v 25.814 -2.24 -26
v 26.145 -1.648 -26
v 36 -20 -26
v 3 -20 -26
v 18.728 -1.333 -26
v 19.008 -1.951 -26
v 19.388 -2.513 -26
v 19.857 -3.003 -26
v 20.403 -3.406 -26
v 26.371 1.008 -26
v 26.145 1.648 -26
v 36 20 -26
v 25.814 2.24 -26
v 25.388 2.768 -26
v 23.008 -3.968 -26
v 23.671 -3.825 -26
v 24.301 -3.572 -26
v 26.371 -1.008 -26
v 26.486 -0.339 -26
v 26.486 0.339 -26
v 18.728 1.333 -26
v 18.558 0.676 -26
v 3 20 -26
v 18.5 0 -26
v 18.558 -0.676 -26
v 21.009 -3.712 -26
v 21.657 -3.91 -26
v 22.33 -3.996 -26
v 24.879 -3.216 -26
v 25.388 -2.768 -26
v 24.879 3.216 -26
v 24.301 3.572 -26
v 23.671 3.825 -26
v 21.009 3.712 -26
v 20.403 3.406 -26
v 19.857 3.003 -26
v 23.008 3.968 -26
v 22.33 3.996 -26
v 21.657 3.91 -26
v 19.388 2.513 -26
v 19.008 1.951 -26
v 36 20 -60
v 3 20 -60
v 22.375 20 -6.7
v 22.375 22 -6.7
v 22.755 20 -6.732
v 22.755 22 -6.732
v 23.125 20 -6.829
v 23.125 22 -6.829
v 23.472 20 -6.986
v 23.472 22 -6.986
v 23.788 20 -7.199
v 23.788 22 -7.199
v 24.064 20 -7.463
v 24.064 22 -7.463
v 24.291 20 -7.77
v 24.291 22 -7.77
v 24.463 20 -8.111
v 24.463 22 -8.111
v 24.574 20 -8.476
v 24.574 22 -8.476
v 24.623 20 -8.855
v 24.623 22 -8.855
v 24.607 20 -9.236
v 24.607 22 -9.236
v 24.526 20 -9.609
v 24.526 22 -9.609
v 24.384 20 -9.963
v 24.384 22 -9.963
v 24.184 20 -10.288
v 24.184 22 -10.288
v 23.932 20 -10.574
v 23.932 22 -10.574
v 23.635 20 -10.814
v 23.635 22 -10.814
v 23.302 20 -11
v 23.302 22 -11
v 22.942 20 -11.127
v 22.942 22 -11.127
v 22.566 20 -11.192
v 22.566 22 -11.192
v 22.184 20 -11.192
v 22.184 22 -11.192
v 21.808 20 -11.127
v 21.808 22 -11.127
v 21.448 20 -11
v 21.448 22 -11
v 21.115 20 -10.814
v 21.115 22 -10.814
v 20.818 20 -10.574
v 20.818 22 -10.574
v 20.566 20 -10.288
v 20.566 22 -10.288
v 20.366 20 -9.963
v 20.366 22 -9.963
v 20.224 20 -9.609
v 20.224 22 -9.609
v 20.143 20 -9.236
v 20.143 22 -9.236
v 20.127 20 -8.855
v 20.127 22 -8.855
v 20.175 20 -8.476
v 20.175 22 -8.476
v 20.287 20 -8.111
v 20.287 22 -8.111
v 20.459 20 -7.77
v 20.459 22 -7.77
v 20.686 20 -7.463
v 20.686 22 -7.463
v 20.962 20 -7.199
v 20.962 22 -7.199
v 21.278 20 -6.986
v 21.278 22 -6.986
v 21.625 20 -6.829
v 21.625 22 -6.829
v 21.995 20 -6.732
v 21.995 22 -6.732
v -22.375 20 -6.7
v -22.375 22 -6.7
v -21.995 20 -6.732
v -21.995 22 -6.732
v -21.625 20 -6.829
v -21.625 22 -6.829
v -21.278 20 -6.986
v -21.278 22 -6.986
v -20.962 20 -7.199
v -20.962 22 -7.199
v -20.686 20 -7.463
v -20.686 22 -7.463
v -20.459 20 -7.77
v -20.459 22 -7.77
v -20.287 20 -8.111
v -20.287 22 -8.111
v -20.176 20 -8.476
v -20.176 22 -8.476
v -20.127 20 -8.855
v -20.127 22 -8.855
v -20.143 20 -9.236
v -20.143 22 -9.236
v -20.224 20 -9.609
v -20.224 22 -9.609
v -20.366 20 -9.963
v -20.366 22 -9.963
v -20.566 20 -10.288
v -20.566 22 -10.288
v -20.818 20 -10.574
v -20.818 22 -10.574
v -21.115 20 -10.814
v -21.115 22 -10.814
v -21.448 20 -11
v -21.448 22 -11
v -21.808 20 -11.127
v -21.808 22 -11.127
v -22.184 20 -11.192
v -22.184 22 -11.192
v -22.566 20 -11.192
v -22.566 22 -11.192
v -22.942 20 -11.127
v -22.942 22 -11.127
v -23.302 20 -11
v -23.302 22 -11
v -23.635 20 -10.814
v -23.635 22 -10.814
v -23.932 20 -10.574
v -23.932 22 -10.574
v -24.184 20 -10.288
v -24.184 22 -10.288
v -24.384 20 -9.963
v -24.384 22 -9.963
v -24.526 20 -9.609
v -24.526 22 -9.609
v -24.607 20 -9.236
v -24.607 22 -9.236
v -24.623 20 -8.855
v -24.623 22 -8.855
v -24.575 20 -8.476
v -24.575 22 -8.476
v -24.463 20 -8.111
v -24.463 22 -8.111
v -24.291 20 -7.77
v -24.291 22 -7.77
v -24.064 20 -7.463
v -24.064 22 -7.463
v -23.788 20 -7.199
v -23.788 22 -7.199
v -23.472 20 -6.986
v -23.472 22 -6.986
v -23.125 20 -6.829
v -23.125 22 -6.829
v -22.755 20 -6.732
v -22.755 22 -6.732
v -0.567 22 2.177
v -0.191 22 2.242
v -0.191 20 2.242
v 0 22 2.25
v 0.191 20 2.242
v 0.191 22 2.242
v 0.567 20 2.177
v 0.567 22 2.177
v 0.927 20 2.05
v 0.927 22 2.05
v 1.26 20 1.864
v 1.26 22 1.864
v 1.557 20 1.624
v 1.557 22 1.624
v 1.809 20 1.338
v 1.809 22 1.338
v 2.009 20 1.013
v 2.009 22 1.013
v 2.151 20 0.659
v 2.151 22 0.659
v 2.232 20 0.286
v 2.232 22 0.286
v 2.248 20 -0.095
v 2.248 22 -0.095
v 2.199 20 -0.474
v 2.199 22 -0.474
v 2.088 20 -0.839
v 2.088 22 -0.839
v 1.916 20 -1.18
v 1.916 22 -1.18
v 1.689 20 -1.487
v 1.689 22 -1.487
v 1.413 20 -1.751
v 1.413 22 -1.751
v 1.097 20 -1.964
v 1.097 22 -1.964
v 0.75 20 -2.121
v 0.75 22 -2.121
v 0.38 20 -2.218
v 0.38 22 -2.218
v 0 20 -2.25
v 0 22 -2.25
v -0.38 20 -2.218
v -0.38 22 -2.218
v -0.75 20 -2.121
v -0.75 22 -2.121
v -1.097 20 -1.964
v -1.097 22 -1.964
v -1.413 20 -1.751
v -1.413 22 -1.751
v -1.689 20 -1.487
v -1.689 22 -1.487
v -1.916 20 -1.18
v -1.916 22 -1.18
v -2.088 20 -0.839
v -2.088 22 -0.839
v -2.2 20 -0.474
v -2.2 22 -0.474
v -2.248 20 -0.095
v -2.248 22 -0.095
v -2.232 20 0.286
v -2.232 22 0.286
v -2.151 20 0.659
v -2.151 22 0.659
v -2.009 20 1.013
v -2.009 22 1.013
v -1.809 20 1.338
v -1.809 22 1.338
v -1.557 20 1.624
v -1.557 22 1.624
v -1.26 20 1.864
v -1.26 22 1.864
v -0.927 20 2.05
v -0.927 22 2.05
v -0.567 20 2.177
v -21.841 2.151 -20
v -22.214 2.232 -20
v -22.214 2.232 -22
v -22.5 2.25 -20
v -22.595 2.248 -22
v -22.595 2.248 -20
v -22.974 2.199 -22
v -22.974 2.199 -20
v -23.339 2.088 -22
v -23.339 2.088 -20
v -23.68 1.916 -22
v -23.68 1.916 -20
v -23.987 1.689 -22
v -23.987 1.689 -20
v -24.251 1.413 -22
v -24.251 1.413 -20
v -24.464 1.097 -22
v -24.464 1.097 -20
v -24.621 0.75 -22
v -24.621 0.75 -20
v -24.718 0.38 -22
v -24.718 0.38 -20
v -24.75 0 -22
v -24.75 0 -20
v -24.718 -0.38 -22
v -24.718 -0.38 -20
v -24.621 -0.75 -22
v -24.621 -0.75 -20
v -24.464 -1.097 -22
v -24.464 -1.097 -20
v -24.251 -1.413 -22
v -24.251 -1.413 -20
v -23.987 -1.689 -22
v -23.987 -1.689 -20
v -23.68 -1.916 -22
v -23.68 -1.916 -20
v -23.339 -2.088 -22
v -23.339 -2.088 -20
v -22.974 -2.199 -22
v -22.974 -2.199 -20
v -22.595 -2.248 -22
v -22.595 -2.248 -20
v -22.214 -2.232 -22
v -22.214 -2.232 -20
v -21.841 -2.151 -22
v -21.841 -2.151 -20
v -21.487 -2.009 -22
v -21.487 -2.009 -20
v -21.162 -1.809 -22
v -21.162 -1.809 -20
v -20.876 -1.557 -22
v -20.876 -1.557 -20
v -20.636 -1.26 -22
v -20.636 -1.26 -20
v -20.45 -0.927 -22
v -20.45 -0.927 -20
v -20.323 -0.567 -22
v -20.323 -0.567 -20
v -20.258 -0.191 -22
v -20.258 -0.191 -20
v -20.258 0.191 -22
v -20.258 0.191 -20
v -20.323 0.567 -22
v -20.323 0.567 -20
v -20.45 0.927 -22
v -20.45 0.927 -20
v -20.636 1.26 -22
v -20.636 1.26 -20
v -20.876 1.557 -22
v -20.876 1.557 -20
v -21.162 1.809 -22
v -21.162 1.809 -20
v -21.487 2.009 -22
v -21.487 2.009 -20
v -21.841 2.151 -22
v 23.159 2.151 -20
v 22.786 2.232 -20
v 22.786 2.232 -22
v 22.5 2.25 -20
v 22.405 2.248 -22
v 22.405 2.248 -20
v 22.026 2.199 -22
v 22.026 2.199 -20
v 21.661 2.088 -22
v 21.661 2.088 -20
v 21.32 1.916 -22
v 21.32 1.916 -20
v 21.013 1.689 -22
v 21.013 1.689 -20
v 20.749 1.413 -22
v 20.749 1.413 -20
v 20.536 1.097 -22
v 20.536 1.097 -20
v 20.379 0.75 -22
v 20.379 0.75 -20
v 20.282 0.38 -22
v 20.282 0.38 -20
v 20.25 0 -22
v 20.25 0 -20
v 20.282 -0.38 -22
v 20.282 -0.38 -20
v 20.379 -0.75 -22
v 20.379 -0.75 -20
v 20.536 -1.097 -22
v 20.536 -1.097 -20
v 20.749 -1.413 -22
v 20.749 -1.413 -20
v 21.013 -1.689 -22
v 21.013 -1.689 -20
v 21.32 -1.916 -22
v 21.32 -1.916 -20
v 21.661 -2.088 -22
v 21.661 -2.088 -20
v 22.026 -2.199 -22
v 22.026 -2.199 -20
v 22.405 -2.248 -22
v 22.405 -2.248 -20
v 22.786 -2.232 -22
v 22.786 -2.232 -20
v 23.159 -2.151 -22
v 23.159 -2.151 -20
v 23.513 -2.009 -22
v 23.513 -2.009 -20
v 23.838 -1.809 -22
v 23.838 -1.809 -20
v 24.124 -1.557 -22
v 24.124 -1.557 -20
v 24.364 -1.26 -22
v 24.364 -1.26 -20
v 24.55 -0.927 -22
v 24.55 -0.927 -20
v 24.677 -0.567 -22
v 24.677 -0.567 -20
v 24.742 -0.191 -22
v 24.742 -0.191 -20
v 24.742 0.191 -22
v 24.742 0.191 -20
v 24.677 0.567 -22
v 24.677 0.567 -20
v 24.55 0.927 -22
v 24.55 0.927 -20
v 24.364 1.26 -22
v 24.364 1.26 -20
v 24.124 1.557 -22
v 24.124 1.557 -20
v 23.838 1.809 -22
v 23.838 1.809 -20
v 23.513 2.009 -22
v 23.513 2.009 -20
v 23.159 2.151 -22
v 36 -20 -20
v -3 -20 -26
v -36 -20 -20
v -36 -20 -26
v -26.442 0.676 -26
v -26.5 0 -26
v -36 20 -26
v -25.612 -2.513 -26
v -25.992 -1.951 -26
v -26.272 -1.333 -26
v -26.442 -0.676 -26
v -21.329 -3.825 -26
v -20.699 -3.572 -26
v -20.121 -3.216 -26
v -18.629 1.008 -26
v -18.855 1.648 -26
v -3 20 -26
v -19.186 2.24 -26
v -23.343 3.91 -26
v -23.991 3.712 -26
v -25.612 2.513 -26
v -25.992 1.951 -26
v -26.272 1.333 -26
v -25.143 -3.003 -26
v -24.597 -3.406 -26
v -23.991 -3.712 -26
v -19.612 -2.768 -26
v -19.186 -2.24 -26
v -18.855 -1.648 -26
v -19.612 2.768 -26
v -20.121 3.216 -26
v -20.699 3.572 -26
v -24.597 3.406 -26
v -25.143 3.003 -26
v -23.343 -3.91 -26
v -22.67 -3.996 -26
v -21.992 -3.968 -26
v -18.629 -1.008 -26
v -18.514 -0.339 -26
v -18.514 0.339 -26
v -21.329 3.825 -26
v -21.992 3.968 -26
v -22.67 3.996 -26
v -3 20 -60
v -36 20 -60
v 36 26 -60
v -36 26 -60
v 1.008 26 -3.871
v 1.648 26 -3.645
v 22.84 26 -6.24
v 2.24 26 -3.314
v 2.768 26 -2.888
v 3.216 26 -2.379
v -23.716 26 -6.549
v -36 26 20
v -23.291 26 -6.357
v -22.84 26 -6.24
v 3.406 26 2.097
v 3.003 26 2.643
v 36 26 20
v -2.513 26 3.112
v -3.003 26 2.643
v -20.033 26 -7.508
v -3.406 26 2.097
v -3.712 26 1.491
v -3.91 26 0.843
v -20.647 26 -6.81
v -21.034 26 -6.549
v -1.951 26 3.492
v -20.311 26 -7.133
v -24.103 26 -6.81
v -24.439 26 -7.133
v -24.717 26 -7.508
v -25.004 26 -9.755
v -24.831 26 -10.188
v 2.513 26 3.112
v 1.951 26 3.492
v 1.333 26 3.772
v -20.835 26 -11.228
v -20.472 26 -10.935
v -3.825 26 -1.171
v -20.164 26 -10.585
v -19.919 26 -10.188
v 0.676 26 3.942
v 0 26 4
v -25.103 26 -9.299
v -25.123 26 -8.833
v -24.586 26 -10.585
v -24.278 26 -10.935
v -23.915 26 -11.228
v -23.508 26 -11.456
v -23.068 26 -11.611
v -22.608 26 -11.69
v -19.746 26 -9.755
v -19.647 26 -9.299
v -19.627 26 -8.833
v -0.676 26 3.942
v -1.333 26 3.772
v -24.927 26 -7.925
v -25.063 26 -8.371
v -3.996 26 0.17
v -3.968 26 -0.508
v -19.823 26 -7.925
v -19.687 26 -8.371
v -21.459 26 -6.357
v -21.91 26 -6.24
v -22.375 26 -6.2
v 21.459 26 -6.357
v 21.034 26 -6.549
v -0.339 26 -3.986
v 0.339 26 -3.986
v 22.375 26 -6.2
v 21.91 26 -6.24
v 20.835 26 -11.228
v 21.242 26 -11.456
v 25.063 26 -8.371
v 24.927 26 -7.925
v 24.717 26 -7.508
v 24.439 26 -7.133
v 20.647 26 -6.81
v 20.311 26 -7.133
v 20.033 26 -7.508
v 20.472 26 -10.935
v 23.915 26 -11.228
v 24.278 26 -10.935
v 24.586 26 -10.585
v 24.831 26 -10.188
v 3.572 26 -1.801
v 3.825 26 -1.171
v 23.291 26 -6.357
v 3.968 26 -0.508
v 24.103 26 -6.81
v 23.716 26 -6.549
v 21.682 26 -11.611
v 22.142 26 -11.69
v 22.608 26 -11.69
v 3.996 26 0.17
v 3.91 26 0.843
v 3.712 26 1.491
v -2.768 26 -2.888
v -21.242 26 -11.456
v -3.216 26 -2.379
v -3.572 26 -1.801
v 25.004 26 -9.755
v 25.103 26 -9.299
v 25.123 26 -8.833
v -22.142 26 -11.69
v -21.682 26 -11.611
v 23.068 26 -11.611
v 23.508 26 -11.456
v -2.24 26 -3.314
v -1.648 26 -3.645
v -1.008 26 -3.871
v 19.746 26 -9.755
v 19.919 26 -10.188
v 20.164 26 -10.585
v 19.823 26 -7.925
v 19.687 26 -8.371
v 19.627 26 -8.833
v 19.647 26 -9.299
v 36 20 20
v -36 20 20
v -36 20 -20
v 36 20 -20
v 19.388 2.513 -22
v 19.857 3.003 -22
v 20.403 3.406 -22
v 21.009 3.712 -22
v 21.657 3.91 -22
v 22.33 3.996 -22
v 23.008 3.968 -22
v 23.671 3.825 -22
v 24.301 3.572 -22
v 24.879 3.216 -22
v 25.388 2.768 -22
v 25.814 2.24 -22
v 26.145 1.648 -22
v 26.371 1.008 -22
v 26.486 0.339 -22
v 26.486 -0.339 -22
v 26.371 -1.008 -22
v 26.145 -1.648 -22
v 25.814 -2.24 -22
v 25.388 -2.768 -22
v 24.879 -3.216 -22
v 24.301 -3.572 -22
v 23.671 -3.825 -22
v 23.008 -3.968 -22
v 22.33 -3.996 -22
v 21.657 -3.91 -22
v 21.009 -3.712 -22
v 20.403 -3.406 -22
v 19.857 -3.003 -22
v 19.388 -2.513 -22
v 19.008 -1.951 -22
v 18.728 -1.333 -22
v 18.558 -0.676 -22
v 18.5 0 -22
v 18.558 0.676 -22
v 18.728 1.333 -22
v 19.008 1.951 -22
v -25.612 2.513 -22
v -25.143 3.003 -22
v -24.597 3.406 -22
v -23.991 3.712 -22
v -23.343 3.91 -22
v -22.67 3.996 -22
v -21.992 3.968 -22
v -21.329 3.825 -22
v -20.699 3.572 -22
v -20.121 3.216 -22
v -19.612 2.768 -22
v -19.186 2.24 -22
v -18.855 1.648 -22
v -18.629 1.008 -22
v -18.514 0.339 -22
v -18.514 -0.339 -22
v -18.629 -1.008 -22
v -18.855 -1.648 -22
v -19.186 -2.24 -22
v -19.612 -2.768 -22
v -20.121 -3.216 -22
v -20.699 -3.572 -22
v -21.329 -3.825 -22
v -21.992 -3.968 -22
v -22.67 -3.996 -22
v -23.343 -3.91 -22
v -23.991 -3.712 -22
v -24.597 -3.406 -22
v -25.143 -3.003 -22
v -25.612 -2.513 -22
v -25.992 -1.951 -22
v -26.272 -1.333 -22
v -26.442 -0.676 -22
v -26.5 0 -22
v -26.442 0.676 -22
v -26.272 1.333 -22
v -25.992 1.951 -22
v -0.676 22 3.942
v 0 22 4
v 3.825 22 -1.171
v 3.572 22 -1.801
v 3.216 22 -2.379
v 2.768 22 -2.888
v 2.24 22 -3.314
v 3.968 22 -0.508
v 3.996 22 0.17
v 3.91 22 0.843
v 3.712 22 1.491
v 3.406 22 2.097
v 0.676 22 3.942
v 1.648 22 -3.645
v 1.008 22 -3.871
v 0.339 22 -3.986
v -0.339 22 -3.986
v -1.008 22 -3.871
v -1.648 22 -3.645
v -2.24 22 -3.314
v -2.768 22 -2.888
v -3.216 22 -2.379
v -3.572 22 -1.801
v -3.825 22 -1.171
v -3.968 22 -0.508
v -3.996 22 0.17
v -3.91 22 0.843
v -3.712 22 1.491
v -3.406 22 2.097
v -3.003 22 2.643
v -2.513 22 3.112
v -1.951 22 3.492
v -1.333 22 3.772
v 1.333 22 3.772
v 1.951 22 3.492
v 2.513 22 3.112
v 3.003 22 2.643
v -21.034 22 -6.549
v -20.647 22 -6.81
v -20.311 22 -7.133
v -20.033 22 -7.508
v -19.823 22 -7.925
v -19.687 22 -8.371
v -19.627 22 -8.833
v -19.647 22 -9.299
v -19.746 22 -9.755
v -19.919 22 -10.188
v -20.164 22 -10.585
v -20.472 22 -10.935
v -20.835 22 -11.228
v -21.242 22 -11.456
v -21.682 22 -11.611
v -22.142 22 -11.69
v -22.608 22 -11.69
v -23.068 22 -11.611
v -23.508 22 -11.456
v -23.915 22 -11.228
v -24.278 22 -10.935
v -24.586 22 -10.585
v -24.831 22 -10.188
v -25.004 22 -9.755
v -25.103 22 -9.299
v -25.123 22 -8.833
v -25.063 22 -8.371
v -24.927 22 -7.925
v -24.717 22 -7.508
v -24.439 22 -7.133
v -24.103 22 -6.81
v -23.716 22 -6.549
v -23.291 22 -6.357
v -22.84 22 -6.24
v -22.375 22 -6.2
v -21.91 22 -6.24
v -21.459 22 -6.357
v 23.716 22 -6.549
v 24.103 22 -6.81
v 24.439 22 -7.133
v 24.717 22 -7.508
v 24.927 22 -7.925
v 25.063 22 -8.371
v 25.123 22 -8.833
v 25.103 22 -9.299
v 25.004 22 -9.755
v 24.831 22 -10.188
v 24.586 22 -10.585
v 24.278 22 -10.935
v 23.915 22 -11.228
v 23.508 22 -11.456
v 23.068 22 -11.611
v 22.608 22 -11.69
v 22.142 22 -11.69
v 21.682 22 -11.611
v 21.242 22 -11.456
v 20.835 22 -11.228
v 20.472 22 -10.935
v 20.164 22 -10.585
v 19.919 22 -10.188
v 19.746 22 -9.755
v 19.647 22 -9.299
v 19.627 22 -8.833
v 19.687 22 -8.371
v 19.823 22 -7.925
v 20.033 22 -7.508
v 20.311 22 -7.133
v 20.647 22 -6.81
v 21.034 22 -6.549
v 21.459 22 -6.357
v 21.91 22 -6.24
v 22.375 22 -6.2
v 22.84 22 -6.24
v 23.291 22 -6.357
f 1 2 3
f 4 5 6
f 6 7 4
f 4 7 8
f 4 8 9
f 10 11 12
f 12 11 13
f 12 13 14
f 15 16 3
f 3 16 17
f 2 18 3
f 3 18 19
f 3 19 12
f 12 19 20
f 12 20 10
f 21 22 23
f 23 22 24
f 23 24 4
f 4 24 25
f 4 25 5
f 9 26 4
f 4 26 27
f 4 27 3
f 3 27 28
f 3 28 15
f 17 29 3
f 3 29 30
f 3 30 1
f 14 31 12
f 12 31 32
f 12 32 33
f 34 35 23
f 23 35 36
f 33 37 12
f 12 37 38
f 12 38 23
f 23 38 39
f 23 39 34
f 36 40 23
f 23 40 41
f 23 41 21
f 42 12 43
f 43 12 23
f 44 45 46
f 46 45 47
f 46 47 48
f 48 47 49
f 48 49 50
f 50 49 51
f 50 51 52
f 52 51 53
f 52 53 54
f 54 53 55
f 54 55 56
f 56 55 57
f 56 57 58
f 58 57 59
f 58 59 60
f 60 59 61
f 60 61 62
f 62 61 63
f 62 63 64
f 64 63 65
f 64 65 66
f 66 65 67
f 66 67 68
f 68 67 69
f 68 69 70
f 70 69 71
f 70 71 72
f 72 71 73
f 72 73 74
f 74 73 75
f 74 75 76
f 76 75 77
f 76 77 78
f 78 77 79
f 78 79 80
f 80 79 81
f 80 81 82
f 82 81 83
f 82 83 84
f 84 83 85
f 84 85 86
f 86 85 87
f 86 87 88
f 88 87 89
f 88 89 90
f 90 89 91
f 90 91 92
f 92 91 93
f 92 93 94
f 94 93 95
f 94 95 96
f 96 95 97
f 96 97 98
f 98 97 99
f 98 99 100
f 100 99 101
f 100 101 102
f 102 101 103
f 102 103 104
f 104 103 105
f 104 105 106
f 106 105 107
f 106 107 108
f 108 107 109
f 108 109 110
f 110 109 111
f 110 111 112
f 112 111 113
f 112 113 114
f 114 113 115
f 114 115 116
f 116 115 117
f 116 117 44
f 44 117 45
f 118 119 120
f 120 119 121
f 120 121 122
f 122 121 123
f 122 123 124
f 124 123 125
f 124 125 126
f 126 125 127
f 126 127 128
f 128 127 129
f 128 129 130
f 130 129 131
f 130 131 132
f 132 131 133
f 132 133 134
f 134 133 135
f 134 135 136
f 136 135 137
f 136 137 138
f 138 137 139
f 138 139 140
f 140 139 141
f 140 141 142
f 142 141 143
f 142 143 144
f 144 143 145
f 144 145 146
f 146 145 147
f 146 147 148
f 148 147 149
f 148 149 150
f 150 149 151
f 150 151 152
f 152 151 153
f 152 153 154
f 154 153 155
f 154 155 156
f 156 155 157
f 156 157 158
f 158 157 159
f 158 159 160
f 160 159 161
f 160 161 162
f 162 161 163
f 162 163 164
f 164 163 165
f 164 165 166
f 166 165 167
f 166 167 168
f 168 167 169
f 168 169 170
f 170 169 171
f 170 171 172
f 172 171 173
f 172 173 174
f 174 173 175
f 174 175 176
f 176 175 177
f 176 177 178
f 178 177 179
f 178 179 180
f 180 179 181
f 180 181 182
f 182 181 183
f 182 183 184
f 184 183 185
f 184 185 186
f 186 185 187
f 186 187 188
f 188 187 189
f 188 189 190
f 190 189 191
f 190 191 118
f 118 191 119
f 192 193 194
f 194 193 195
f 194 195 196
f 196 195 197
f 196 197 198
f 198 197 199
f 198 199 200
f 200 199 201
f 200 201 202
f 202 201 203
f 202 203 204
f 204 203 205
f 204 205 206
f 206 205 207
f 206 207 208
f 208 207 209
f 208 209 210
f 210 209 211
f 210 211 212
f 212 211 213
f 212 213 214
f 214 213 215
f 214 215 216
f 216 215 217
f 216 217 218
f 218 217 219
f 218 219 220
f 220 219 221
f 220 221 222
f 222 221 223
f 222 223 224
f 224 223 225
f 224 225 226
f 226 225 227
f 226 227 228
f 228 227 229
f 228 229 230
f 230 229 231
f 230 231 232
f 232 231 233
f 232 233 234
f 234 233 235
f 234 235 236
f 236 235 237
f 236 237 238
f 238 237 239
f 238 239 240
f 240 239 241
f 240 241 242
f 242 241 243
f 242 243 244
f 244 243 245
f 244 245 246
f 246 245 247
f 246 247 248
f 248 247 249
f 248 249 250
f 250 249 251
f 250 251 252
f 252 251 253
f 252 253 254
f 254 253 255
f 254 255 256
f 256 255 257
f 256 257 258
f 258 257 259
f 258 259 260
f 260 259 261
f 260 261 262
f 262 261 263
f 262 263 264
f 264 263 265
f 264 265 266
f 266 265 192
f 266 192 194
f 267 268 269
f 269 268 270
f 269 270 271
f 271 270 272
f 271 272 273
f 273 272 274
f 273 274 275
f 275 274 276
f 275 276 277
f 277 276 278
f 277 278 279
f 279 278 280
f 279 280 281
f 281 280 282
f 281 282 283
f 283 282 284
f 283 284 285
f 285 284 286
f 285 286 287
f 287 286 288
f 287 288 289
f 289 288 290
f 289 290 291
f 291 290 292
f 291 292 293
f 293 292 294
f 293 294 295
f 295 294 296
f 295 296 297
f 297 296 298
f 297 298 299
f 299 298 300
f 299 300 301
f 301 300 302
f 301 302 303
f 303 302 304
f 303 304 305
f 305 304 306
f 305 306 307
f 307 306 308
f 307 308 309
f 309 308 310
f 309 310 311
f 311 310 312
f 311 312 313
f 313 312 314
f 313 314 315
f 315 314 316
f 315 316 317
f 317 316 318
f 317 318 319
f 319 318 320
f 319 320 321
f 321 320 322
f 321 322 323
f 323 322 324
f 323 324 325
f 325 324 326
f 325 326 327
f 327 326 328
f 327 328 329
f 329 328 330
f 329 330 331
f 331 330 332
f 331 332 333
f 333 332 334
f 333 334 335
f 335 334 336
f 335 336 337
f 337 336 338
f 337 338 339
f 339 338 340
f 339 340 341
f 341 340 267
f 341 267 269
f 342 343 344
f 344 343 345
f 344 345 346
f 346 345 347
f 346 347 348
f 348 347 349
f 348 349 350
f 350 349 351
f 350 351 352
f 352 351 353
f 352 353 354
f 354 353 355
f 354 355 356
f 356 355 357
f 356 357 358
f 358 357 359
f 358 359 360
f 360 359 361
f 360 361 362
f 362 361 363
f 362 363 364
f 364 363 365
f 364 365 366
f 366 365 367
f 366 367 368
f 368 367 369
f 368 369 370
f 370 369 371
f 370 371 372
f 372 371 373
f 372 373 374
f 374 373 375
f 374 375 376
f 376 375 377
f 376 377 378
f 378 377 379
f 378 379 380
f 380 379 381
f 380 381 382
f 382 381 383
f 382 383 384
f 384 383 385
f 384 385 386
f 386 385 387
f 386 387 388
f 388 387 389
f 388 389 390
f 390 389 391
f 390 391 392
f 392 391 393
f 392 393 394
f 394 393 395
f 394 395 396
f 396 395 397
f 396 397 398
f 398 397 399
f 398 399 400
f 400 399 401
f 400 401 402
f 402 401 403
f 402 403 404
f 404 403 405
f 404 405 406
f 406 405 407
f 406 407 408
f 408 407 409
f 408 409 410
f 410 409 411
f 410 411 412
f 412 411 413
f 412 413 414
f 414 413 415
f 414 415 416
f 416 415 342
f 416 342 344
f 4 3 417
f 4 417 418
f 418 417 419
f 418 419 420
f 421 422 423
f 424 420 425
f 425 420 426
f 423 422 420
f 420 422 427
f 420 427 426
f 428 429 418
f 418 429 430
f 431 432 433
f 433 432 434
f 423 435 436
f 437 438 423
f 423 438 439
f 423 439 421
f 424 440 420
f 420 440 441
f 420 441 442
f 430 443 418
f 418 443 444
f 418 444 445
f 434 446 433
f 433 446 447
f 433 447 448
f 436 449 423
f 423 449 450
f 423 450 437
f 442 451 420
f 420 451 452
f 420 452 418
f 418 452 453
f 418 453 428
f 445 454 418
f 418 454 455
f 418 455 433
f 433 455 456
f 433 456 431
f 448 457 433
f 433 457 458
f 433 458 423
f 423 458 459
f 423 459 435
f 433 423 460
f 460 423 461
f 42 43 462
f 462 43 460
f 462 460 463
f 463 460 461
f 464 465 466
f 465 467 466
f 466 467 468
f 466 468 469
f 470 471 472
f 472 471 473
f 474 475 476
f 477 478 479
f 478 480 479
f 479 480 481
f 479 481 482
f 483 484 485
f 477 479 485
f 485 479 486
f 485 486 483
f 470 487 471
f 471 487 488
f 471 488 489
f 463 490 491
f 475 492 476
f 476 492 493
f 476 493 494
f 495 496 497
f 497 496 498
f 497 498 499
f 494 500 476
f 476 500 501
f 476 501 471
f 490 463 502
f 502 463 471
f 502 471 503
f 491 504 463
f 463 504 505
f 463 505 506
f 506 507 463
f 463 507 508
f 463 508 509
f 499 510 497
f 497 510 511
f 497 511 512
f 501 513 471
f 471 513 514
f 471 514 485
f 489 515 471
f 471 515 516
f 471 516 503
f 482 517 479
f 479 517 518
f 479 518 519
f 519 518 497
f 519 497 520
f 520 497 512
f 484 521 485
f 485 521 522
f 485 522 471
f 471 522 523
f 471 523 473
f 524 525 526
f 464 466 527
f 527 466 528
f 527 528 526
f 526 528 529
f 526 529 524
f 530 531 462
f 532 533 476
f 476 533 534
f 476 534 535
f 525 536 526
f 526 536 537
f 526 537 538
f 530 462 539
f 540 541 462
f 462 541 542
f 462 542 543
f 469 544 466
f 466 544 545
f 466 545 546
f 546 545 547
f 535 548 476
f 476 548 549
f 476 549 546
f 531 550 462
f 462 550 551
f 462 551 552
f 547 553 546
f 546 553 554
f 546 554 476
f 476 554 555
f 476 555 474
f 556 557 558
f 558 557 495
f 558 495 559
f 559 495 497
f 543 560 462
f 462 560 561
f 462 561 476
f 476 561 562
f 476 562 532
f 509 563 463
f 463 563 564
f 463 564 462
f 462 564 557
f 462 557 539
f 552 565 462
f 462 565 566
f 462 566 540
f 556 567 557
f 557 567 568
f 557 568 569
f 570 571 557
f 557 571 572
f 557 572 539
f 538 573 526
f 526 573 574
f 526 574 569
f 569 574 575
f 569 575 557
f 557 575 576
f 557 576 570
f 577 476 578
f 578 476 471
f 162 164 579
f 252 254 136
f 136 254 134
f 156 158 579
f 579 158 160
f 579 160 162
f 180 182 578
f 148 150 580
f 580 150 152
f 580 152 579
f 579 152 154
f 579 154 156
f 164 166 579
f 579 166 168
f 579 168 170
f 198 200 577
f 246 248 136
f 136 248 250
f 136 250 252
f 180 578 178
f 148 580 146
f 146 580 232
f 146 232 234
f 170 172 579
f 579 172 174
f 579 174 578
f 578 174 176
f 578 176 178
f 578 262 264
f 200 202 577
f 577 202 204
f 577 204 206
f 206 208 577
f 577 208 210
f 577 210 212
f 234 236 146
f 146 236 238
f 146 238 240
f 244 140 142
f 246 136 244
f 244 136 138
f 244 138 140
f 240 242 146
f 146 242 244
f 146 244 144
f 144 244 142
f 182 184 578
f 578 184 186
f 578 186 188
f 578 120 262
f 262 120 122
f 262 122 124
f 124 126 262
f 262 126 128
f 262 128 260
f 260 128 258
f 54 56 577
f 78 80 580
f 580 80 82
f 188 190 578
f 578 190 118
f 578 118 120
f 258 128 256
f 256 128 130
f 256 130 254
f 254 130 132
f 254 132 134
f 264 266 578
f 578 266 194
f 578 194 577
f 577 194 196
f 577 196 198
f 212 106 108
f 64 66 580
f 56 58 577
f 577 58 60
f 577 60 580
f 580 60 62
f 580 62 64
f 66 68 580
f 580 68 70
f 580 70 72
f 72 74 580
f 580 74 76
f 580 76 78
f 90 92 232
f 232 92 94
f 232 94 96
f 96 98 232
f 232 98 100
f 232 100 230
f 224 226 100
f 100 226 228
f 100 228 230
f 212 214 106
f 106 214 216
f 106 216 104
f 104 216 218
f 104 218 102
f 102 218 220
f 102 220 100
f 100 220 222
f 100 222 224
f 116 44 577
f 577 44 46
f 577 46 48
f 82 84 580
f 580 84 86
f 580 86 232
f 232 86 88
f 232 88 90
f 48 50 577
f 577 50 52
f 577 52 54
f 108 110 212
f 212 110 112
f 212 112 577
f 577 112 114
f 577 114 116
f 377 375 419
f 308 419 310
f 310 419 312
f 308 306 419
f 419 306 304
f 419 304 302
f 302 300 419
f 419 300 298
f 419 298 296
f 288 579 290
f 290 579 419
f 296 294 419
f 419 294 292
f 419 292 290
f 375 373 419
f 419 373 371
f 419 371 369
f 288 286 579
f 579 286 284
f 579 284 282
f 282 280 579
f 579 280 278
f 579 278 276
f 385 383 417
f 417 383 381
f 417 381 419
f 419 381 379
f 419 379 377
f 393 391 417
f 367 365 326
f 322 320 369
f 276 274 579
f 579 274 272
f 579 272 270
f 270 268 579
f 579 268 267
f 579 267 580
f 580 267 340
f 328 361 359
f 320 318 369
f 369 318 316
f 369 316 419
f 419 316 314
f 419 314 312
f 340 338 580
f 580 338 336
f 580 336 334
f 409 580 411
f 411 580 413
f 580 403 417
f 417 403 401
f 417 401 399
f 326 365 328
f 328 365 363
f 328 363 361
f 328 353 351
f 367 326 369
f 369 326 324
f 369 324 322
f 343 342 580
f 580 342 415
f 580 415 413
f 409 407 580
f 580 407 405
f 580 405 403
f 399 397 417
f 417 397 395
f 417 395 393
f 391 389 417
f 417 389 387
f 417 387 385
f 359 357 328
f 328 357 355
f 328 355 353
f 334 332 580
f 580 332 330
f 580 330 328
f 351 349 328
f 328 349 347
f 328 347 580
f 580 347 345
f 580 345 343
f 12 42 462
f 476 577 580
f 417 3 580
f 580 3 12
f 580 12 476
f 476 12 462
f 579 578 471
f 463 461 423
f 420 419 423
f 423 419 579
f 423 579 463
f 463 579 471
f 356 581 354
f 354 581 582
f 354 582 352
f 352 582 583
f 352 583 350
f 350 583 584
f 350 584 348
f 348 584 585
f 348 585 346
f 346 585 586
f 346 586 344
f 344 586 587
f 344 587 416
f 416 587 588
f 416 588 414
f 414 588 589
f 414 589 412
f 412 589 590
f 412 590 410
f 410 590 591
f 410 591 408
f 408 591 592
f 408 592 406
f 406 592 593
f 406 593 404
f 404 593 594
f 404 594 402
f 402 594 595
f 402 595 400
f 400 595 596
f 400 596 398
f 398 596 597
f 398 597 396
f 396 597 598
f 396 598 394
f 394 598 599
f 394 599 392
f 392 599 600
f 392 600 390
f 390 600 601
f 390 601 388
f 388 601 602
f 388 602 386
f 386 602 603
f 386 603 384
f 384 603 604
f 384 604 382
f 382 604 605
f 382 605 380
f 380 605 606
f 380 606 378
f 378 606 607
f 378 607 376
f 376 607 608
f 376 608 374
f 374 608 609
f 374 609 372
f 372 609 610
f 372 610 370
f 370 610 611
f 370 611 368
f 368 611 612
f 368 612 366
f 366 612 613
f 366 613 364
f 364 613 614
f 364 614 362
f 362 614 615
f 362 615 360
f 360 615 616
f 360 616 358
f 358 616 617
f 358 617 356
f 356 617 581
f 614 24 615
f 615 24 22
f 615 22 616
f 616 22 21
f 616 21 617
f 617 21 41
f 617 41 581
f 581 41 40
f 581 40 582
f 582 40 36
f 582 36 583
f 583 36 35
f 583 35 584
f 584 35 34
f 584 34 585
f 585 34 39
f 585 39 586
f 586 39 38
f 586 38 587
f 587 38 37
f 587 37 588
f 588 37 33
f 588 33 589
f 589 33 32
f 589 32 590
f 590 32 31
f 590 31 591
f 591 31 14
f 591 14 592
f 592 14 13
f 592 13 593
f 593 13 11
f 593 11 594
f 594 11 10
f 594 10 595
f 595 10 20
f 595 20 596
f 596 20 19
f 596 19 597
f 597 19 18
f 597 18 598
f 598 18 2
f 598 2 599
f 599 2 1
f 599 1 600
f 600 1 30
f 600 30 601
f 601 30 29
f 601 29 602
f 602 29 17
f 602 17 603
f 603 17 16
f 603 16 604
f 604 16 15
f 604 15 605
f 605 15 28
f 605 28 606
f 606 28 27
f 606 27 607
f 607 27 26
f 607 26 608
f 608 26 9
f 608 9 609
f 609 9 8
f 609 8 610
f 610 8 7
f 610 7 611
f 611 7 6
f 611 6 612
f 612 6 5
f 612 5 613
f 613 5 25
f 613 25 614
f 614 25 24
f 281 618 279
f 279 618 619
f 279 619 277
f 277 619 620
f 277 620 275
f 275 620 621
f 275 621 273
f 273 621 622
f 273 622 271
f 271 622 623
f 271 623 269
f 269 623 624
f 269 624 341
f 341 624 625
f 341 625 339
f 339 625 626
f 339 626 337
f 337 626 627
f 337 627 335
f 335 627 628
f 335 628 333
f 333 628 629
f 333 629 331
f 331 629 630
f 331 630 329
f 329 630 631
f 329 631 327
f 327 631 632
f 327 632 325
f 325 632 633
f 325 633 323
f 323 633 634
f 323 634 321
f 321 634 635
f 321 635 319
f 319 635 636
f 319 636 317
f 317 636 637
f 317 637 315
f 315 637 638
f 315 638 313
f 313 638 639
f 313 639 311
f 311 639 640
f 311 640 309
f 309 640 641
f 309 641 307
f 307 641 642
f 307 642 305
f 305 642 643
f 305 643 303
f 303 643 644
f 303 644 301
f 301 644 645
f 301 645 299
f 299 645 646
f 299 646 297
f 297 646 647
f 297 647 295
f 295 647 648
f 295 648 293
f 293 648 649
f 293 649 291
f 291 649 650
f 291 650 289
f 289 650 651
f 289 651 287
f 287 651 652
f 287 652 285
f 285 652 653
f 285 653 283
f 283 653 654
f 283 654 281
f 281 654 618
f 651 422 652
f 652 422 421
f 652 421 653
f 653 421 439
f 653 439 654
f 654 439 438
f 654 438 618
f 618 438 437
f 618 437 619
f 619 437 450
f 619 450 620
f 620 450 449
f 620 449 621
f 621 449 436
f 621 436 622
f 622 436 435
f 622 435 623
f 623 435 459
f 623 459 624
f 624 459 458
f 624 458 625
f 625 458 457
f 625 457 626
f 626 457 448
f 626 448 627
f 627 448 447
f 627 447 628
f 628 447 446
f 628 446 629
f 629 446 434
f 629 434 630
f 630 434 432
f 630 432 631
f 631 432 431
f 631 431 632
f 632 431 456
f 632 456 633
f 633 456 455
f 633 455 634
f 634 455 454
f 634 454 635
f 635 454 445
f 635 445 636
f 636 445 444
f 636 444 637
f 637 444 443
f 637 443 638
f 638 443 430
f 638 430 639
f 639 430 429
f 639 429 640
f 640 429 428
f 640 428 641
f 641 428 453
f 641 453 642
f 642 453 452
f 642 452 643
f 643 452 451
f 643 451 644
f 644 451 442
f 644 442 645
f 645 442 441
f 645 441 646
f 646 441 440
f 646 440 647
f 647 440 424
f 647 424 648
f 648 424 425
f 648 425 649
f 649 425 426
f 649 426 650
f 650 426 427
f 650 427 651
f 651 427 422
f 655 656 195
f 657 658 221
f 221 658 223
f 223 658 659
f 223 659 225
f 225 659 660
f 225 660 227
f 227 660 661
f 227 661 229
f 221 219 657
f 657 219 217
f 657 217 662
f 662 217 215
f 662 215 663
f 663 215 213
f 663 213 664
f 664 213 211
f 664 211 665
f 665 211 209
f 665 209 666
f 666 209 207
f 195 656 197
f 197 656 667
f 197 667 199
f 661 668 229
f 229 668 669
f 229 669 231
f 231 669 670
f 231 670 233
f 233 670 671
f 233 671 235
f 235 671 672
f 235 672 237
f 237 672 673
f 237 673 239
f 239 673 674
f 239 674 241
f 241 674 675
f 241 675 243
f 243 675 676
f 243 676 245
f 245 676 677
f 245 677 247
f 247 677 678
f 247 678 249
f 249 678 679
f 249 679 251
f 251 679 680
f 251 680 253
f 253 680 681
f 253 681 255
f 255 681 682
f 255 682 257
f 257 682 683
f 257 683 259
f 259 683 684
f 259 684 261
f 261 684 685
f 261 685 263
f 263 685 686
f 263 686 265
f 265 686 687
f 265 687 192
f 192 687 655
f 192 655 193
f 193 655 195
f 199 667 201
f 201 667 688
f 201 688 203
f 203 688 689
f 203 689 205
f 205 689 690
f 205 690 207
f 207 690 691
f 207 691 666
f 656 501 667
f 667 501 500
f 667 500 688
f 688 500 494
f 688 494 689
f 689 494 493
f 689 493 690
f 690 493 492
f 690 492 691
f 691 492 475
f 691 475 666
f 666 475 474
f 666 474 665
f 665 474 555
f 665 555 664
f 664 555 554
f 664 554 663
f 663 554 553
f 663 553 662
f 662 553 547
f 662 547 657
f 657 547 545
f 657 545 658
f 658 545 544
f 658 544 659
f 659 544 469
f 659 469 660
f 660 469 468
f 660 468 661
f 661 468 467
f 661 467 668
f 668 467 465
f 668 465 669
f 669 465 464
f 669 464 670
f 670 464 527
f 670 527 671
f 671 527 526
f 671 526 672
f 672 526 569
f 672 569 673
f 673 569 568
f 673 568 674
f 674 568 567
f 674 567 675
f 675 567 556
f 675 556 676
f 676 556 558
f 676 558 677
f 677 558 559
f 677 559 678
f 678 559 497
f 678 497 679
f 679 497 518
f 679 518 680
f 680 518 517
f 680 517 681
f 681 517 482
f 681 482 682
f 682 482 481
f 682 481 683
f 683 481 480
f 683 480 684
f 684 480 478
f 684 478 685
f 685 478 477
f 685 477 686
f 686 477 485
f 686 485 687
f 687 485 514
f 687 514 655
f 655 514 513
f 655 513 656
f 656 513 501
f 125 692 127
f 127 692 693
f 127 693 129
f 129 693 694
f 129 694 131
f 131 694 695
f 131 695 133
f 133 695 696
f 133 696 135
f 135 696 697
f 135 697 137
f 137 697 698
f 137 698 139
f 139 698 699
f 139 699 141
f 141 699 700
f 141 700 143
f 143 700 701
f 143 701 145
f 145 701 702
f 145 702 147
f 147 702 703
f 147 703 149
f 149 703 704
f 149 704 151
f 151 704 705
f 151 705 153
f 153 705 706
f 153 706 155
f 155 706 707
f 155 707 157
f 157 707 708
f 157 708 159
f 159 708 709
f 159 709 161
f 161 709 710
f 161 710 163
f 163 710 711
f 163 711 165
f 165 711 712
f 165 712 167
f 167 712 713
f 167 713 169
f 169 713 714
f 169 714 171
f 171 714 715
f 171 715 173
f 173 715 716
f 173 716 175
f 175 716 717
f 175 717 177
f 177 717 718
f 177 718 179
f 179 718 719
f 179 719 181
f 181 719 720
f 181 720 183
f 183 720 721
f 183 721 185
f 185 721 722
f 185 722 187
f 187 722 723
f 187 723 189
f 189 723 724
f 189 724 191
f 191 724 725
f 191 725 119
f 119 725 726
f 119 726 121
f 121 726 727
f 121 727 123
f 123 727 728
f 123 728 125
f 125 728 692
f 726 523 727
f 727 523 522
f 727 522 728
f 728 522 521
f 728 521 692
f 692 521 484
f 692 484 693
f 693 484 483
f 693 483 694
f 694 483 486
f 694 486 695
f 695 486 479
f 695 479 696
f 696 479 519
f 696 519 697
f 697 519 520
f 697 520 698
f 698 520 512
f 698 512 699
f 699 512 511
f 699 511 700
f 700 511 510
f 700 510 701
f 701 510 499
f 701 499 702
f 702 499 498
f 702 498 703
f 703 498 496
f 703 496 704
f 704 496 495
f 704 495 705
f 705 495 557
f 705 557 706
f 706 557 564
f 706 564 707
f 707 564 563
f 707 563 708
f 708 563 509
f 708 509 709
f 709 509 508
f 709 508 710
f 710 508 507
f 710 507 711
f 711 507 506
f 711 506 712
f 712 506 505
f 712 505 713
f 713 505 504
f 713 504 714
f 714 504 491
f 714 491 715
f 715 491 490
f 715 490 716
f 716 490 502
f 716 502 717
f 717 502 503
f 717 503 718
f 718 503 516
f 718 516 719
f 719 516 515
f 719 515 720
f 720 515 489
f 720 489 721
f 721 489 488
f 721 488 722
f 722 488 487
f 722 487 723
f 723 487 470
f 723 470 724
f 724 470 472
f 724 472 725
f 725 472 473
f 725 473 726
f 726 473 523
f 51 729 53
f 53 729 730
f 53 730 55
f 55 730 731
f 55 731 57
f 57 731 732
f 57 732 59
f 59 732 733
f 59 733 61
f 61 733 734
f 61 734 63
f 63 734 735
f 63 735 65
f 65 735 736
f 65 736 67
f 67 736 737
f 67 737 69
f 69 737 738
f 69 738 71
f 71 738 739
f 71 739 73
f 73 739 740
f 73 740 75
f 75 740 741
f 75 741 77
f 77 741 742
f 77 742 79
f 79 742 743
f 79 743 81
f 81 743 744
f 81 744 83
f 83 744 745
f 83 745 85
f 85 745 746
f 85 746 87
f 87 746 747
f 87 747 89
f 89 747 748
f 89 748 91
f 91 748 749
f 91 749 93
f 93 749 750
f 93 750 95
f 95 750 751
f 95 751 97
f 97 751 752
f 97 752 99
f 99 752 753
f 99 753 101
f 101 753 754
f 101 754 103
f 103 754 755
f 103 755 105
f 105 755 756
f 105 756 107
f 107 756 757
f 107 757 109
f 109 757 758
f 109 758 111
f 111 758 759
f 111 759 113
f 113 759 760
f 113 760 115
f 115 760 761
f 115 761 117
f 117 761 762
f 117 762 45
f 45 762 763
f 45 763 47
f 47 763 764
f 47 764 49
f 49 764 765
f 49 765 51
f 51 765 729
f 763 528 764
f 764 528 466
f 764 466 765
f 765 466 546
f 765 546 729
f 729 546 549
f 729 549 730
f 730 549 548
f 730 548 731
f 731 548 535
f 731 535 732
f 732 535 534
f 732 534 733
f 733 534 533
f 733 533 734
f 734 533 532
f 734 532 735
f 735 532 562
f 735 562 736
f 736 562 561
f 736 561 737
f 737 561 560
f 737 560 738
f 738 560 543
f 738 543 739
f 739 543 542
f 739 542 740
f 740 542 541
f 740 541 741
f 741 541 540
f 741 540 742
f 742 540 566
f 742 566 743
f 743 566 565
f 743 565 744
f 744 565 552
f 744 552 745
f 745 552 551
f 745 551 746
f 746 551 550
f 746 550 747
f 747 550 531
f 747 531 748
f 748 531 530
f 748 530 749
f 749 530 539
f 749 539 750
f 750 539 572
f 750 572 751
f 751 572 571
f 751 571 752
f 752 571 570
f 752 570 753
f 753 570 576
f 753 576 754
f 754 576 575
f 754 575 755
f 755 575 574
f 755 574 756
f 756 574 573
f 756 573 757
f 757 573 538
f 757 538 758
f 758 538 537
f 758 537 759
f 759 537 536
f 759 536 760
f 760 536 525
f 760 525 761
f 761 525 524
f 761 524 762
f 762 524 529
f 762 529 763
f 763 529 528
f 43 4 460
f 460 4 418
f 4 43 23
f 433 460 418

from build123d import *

# Parameters (mm, degrees)
BOSS_EXTRUDE1_DEPTH = 36
CUT_EXTRUDE1_REACH  = 48
SKETCH2_R           = 2.25
CUT_EXTRUDE2_REACH  = 8
SKETCH3_R           = 2.25
SKETCH4_R           = 4
CUT_EXTRUDE3_DEPTH  = 4
SKETCH5_R           = 4
CUT_EXTRUDE4_DEPTH  = 4
CUT_EXTRUDE5_REACH  = 48
SKETCH7_R           = 2.25
SKETCH8_R           = 2.75
CUT_EXTRUDE6_DEPTH  = 4
BOSS_EXTRUDE2_DEPTH = 3


with BuildPart() as part:
    # Sketch1 → Boss-Extrude1 (new body, symmetric)
    with BuildSketch(Plane(origin=(0, 0, 0), x_dir=(0, 0, -1), z_dir=(1, 0, 0))):
        Polygon((-20, 20), (20, 20), (20, -20), (26, -20), (26, 20), (60, 20), (60, 26), (-20, 26), align=None)
    extrude(amount=BOSS_EXTRUDE1_DEPTH, both=True)

    # Sketch2 → Cut-Extrude1 (cut, up to next)
    with BuildSketch(Plane(origin=(0, 0, -26), x_dir=(-1, 0, 0), z_dir=(0, 0, -1)), mode=Mode.PRIVATE) as cut_extrude1_sk1:
        with Locations((-22.5, 0)):
            Circle(SKETCH2_R)
    cut_extrude1_tool1 = extrude(cut_extrude1_sk1.sketch, amount=-CUT_EXTRUDE1_REACH, mode=Mode.PRIVATE) & part.part
    add(cut_extrude1_tool1.solids().sort_by_distance((22.5, 0, -26))[0], mode=Mode.SUBTRACT)
    # Sketch2 → Cut-Extrude1 (cut, up to next)
    with BuildSketch(Plane(origin=(0, 0, -26), x_dir=(-1, 0, 0), z_dir=(0, 0, -1)), mode=Mode.PRIVATE) as cut_extrude1_sk2:
        with Locations((22.5, 0)):
            Circle(SKETCH2_R)
    cut_extrude1_tool2 = extrude(cut_extrude1_sk2.sketch, amount=-CUT_EXTRUDE1_REACH, mode=Mode.PRIVATE) & part.part
    add(cut_extrude1_tool2.solids().sort_by_distance((-22.5, 0, -26))[0], mode=Mode.SUBTRACT)

    # Sketch3 → Cut-Extrude2 (cut, up to next)
    with BuildSketch(Plane.XZ.offset(-20), mode=Mode.PRIVATE) as cut_extrude2_sk1:
        Circle(SKETCH3_R)
    cut_extrude2_tool1 = extrude(cut_extrude2_sk1.sketch, amount=-CUT_EXTRUDE2_REACH, mode=Mode.PRIVATE) & part.part
    add(cut_extrude2_tool1.solids().sort_by_distance((0, 20, 0))[0], mode=Mode.SUBTRACT)

    # Sketch4 → Cut-Extrude3 (cut)
    with BuildSketch(Plane(origin=(0, 0, -26), x_dir=(-1, 0, 0), z_dir=(0, 0, -1))):
        with Locations((-22.5, 0)):
            Circle(SKETCH4_R)
        with Locations((22.5, 0)):
            Circle(SKETCH4_R)
    extrude(amount=-CUT_EXTRUDE3_DEPTH, mode=Mode.SUBTRACT)

    # Sketch5 → Cut-Extrude4 (cut)
    with BuildSketch(Plane(origin=(0, 26, 0), x_dir=(1, 0, 0), z_dir=(0, 1, 0))):
        Circle(SKETCH5_R)
    extrude(amount=-CUT_EXTRUDE4_DEPTH, mode=Mode.SUBTRACT)

    # Sketch7 → Cut-Extrude5 (cut, up to next)
    with BuildSketch(Plane(origin=(0, 26, 0), x_dir=(1, 0, 0), z_dir=(0, 1, 0)), mode=Mode.PRIVATE) as cut_extrude5_sk1:
        with Locations((-22.375, 8.95)):
            Circle(SKETCH7_R)
    cut_extrude5_tool1 = extrude(cut_extrude5_sk1.sketch, amount=-CUT_EXTRUDE5_REACH, mode=Mode.PRIVATE) & part.part
    add(cut_extrude5_tool1.solids().sort_by_distance((-22.375, 26, -8.95))[0], mode=Mode.SUBTRACT)
    # Sketch7 → Cut-Extrude5 (cut, up to next)
    with BuildSketch(Plane(origin=(0, 26, 0), x_dir=(1, 0, 0), z_dir=(0, 1, 0)), mode=Mode.PRIVATE) as cut_extrude5_sk2:
        with Locations((22.375, 8.95)):
            Circle(SKETCH7_R)
    cut_extrude5_tool2 = extrude(cut_extrude5_sk2.sketch, amount=-CUT_EXTRUDE5_REACH, mode=Mode.PRIVATE) & part.part
    add(cut_extrude5_tool2.solids().sort_by_distance((22.375, 26, -8.95))[0], mode=Mode.SUBTRACT)

    # Sketch8 → Cut-Extrude6 (cut)
    with BuildSketch(Plane(origin=(0, 26, 0), x_dir=(1, 0, 0), z_dir=(0, 1, 0))):
        with Locations((-22.375, 8.95)):
            Circle(SKETCH8_R)
        with Locations((22.375, 8.95)):
            Circle(SKETCH8_R)
    extrude(amount=-CUT_EXTRUDE6_DEPTH, mode=Mode.SUBTRACT)

    # Sketch9 → Boss-Extrude2 (add, symmetric)
    with BuildSketch(Plane(origin=(0, 0, 0), x_dir=(0, 0, -1), z_dir=(1, 0, 0))):
        Polygon((26, -20), (60, 20), (26, 20), align=None)
    extrude(amount=BOSS_EXTRUDE2_DEPTH, both=True)


solid = part.part
